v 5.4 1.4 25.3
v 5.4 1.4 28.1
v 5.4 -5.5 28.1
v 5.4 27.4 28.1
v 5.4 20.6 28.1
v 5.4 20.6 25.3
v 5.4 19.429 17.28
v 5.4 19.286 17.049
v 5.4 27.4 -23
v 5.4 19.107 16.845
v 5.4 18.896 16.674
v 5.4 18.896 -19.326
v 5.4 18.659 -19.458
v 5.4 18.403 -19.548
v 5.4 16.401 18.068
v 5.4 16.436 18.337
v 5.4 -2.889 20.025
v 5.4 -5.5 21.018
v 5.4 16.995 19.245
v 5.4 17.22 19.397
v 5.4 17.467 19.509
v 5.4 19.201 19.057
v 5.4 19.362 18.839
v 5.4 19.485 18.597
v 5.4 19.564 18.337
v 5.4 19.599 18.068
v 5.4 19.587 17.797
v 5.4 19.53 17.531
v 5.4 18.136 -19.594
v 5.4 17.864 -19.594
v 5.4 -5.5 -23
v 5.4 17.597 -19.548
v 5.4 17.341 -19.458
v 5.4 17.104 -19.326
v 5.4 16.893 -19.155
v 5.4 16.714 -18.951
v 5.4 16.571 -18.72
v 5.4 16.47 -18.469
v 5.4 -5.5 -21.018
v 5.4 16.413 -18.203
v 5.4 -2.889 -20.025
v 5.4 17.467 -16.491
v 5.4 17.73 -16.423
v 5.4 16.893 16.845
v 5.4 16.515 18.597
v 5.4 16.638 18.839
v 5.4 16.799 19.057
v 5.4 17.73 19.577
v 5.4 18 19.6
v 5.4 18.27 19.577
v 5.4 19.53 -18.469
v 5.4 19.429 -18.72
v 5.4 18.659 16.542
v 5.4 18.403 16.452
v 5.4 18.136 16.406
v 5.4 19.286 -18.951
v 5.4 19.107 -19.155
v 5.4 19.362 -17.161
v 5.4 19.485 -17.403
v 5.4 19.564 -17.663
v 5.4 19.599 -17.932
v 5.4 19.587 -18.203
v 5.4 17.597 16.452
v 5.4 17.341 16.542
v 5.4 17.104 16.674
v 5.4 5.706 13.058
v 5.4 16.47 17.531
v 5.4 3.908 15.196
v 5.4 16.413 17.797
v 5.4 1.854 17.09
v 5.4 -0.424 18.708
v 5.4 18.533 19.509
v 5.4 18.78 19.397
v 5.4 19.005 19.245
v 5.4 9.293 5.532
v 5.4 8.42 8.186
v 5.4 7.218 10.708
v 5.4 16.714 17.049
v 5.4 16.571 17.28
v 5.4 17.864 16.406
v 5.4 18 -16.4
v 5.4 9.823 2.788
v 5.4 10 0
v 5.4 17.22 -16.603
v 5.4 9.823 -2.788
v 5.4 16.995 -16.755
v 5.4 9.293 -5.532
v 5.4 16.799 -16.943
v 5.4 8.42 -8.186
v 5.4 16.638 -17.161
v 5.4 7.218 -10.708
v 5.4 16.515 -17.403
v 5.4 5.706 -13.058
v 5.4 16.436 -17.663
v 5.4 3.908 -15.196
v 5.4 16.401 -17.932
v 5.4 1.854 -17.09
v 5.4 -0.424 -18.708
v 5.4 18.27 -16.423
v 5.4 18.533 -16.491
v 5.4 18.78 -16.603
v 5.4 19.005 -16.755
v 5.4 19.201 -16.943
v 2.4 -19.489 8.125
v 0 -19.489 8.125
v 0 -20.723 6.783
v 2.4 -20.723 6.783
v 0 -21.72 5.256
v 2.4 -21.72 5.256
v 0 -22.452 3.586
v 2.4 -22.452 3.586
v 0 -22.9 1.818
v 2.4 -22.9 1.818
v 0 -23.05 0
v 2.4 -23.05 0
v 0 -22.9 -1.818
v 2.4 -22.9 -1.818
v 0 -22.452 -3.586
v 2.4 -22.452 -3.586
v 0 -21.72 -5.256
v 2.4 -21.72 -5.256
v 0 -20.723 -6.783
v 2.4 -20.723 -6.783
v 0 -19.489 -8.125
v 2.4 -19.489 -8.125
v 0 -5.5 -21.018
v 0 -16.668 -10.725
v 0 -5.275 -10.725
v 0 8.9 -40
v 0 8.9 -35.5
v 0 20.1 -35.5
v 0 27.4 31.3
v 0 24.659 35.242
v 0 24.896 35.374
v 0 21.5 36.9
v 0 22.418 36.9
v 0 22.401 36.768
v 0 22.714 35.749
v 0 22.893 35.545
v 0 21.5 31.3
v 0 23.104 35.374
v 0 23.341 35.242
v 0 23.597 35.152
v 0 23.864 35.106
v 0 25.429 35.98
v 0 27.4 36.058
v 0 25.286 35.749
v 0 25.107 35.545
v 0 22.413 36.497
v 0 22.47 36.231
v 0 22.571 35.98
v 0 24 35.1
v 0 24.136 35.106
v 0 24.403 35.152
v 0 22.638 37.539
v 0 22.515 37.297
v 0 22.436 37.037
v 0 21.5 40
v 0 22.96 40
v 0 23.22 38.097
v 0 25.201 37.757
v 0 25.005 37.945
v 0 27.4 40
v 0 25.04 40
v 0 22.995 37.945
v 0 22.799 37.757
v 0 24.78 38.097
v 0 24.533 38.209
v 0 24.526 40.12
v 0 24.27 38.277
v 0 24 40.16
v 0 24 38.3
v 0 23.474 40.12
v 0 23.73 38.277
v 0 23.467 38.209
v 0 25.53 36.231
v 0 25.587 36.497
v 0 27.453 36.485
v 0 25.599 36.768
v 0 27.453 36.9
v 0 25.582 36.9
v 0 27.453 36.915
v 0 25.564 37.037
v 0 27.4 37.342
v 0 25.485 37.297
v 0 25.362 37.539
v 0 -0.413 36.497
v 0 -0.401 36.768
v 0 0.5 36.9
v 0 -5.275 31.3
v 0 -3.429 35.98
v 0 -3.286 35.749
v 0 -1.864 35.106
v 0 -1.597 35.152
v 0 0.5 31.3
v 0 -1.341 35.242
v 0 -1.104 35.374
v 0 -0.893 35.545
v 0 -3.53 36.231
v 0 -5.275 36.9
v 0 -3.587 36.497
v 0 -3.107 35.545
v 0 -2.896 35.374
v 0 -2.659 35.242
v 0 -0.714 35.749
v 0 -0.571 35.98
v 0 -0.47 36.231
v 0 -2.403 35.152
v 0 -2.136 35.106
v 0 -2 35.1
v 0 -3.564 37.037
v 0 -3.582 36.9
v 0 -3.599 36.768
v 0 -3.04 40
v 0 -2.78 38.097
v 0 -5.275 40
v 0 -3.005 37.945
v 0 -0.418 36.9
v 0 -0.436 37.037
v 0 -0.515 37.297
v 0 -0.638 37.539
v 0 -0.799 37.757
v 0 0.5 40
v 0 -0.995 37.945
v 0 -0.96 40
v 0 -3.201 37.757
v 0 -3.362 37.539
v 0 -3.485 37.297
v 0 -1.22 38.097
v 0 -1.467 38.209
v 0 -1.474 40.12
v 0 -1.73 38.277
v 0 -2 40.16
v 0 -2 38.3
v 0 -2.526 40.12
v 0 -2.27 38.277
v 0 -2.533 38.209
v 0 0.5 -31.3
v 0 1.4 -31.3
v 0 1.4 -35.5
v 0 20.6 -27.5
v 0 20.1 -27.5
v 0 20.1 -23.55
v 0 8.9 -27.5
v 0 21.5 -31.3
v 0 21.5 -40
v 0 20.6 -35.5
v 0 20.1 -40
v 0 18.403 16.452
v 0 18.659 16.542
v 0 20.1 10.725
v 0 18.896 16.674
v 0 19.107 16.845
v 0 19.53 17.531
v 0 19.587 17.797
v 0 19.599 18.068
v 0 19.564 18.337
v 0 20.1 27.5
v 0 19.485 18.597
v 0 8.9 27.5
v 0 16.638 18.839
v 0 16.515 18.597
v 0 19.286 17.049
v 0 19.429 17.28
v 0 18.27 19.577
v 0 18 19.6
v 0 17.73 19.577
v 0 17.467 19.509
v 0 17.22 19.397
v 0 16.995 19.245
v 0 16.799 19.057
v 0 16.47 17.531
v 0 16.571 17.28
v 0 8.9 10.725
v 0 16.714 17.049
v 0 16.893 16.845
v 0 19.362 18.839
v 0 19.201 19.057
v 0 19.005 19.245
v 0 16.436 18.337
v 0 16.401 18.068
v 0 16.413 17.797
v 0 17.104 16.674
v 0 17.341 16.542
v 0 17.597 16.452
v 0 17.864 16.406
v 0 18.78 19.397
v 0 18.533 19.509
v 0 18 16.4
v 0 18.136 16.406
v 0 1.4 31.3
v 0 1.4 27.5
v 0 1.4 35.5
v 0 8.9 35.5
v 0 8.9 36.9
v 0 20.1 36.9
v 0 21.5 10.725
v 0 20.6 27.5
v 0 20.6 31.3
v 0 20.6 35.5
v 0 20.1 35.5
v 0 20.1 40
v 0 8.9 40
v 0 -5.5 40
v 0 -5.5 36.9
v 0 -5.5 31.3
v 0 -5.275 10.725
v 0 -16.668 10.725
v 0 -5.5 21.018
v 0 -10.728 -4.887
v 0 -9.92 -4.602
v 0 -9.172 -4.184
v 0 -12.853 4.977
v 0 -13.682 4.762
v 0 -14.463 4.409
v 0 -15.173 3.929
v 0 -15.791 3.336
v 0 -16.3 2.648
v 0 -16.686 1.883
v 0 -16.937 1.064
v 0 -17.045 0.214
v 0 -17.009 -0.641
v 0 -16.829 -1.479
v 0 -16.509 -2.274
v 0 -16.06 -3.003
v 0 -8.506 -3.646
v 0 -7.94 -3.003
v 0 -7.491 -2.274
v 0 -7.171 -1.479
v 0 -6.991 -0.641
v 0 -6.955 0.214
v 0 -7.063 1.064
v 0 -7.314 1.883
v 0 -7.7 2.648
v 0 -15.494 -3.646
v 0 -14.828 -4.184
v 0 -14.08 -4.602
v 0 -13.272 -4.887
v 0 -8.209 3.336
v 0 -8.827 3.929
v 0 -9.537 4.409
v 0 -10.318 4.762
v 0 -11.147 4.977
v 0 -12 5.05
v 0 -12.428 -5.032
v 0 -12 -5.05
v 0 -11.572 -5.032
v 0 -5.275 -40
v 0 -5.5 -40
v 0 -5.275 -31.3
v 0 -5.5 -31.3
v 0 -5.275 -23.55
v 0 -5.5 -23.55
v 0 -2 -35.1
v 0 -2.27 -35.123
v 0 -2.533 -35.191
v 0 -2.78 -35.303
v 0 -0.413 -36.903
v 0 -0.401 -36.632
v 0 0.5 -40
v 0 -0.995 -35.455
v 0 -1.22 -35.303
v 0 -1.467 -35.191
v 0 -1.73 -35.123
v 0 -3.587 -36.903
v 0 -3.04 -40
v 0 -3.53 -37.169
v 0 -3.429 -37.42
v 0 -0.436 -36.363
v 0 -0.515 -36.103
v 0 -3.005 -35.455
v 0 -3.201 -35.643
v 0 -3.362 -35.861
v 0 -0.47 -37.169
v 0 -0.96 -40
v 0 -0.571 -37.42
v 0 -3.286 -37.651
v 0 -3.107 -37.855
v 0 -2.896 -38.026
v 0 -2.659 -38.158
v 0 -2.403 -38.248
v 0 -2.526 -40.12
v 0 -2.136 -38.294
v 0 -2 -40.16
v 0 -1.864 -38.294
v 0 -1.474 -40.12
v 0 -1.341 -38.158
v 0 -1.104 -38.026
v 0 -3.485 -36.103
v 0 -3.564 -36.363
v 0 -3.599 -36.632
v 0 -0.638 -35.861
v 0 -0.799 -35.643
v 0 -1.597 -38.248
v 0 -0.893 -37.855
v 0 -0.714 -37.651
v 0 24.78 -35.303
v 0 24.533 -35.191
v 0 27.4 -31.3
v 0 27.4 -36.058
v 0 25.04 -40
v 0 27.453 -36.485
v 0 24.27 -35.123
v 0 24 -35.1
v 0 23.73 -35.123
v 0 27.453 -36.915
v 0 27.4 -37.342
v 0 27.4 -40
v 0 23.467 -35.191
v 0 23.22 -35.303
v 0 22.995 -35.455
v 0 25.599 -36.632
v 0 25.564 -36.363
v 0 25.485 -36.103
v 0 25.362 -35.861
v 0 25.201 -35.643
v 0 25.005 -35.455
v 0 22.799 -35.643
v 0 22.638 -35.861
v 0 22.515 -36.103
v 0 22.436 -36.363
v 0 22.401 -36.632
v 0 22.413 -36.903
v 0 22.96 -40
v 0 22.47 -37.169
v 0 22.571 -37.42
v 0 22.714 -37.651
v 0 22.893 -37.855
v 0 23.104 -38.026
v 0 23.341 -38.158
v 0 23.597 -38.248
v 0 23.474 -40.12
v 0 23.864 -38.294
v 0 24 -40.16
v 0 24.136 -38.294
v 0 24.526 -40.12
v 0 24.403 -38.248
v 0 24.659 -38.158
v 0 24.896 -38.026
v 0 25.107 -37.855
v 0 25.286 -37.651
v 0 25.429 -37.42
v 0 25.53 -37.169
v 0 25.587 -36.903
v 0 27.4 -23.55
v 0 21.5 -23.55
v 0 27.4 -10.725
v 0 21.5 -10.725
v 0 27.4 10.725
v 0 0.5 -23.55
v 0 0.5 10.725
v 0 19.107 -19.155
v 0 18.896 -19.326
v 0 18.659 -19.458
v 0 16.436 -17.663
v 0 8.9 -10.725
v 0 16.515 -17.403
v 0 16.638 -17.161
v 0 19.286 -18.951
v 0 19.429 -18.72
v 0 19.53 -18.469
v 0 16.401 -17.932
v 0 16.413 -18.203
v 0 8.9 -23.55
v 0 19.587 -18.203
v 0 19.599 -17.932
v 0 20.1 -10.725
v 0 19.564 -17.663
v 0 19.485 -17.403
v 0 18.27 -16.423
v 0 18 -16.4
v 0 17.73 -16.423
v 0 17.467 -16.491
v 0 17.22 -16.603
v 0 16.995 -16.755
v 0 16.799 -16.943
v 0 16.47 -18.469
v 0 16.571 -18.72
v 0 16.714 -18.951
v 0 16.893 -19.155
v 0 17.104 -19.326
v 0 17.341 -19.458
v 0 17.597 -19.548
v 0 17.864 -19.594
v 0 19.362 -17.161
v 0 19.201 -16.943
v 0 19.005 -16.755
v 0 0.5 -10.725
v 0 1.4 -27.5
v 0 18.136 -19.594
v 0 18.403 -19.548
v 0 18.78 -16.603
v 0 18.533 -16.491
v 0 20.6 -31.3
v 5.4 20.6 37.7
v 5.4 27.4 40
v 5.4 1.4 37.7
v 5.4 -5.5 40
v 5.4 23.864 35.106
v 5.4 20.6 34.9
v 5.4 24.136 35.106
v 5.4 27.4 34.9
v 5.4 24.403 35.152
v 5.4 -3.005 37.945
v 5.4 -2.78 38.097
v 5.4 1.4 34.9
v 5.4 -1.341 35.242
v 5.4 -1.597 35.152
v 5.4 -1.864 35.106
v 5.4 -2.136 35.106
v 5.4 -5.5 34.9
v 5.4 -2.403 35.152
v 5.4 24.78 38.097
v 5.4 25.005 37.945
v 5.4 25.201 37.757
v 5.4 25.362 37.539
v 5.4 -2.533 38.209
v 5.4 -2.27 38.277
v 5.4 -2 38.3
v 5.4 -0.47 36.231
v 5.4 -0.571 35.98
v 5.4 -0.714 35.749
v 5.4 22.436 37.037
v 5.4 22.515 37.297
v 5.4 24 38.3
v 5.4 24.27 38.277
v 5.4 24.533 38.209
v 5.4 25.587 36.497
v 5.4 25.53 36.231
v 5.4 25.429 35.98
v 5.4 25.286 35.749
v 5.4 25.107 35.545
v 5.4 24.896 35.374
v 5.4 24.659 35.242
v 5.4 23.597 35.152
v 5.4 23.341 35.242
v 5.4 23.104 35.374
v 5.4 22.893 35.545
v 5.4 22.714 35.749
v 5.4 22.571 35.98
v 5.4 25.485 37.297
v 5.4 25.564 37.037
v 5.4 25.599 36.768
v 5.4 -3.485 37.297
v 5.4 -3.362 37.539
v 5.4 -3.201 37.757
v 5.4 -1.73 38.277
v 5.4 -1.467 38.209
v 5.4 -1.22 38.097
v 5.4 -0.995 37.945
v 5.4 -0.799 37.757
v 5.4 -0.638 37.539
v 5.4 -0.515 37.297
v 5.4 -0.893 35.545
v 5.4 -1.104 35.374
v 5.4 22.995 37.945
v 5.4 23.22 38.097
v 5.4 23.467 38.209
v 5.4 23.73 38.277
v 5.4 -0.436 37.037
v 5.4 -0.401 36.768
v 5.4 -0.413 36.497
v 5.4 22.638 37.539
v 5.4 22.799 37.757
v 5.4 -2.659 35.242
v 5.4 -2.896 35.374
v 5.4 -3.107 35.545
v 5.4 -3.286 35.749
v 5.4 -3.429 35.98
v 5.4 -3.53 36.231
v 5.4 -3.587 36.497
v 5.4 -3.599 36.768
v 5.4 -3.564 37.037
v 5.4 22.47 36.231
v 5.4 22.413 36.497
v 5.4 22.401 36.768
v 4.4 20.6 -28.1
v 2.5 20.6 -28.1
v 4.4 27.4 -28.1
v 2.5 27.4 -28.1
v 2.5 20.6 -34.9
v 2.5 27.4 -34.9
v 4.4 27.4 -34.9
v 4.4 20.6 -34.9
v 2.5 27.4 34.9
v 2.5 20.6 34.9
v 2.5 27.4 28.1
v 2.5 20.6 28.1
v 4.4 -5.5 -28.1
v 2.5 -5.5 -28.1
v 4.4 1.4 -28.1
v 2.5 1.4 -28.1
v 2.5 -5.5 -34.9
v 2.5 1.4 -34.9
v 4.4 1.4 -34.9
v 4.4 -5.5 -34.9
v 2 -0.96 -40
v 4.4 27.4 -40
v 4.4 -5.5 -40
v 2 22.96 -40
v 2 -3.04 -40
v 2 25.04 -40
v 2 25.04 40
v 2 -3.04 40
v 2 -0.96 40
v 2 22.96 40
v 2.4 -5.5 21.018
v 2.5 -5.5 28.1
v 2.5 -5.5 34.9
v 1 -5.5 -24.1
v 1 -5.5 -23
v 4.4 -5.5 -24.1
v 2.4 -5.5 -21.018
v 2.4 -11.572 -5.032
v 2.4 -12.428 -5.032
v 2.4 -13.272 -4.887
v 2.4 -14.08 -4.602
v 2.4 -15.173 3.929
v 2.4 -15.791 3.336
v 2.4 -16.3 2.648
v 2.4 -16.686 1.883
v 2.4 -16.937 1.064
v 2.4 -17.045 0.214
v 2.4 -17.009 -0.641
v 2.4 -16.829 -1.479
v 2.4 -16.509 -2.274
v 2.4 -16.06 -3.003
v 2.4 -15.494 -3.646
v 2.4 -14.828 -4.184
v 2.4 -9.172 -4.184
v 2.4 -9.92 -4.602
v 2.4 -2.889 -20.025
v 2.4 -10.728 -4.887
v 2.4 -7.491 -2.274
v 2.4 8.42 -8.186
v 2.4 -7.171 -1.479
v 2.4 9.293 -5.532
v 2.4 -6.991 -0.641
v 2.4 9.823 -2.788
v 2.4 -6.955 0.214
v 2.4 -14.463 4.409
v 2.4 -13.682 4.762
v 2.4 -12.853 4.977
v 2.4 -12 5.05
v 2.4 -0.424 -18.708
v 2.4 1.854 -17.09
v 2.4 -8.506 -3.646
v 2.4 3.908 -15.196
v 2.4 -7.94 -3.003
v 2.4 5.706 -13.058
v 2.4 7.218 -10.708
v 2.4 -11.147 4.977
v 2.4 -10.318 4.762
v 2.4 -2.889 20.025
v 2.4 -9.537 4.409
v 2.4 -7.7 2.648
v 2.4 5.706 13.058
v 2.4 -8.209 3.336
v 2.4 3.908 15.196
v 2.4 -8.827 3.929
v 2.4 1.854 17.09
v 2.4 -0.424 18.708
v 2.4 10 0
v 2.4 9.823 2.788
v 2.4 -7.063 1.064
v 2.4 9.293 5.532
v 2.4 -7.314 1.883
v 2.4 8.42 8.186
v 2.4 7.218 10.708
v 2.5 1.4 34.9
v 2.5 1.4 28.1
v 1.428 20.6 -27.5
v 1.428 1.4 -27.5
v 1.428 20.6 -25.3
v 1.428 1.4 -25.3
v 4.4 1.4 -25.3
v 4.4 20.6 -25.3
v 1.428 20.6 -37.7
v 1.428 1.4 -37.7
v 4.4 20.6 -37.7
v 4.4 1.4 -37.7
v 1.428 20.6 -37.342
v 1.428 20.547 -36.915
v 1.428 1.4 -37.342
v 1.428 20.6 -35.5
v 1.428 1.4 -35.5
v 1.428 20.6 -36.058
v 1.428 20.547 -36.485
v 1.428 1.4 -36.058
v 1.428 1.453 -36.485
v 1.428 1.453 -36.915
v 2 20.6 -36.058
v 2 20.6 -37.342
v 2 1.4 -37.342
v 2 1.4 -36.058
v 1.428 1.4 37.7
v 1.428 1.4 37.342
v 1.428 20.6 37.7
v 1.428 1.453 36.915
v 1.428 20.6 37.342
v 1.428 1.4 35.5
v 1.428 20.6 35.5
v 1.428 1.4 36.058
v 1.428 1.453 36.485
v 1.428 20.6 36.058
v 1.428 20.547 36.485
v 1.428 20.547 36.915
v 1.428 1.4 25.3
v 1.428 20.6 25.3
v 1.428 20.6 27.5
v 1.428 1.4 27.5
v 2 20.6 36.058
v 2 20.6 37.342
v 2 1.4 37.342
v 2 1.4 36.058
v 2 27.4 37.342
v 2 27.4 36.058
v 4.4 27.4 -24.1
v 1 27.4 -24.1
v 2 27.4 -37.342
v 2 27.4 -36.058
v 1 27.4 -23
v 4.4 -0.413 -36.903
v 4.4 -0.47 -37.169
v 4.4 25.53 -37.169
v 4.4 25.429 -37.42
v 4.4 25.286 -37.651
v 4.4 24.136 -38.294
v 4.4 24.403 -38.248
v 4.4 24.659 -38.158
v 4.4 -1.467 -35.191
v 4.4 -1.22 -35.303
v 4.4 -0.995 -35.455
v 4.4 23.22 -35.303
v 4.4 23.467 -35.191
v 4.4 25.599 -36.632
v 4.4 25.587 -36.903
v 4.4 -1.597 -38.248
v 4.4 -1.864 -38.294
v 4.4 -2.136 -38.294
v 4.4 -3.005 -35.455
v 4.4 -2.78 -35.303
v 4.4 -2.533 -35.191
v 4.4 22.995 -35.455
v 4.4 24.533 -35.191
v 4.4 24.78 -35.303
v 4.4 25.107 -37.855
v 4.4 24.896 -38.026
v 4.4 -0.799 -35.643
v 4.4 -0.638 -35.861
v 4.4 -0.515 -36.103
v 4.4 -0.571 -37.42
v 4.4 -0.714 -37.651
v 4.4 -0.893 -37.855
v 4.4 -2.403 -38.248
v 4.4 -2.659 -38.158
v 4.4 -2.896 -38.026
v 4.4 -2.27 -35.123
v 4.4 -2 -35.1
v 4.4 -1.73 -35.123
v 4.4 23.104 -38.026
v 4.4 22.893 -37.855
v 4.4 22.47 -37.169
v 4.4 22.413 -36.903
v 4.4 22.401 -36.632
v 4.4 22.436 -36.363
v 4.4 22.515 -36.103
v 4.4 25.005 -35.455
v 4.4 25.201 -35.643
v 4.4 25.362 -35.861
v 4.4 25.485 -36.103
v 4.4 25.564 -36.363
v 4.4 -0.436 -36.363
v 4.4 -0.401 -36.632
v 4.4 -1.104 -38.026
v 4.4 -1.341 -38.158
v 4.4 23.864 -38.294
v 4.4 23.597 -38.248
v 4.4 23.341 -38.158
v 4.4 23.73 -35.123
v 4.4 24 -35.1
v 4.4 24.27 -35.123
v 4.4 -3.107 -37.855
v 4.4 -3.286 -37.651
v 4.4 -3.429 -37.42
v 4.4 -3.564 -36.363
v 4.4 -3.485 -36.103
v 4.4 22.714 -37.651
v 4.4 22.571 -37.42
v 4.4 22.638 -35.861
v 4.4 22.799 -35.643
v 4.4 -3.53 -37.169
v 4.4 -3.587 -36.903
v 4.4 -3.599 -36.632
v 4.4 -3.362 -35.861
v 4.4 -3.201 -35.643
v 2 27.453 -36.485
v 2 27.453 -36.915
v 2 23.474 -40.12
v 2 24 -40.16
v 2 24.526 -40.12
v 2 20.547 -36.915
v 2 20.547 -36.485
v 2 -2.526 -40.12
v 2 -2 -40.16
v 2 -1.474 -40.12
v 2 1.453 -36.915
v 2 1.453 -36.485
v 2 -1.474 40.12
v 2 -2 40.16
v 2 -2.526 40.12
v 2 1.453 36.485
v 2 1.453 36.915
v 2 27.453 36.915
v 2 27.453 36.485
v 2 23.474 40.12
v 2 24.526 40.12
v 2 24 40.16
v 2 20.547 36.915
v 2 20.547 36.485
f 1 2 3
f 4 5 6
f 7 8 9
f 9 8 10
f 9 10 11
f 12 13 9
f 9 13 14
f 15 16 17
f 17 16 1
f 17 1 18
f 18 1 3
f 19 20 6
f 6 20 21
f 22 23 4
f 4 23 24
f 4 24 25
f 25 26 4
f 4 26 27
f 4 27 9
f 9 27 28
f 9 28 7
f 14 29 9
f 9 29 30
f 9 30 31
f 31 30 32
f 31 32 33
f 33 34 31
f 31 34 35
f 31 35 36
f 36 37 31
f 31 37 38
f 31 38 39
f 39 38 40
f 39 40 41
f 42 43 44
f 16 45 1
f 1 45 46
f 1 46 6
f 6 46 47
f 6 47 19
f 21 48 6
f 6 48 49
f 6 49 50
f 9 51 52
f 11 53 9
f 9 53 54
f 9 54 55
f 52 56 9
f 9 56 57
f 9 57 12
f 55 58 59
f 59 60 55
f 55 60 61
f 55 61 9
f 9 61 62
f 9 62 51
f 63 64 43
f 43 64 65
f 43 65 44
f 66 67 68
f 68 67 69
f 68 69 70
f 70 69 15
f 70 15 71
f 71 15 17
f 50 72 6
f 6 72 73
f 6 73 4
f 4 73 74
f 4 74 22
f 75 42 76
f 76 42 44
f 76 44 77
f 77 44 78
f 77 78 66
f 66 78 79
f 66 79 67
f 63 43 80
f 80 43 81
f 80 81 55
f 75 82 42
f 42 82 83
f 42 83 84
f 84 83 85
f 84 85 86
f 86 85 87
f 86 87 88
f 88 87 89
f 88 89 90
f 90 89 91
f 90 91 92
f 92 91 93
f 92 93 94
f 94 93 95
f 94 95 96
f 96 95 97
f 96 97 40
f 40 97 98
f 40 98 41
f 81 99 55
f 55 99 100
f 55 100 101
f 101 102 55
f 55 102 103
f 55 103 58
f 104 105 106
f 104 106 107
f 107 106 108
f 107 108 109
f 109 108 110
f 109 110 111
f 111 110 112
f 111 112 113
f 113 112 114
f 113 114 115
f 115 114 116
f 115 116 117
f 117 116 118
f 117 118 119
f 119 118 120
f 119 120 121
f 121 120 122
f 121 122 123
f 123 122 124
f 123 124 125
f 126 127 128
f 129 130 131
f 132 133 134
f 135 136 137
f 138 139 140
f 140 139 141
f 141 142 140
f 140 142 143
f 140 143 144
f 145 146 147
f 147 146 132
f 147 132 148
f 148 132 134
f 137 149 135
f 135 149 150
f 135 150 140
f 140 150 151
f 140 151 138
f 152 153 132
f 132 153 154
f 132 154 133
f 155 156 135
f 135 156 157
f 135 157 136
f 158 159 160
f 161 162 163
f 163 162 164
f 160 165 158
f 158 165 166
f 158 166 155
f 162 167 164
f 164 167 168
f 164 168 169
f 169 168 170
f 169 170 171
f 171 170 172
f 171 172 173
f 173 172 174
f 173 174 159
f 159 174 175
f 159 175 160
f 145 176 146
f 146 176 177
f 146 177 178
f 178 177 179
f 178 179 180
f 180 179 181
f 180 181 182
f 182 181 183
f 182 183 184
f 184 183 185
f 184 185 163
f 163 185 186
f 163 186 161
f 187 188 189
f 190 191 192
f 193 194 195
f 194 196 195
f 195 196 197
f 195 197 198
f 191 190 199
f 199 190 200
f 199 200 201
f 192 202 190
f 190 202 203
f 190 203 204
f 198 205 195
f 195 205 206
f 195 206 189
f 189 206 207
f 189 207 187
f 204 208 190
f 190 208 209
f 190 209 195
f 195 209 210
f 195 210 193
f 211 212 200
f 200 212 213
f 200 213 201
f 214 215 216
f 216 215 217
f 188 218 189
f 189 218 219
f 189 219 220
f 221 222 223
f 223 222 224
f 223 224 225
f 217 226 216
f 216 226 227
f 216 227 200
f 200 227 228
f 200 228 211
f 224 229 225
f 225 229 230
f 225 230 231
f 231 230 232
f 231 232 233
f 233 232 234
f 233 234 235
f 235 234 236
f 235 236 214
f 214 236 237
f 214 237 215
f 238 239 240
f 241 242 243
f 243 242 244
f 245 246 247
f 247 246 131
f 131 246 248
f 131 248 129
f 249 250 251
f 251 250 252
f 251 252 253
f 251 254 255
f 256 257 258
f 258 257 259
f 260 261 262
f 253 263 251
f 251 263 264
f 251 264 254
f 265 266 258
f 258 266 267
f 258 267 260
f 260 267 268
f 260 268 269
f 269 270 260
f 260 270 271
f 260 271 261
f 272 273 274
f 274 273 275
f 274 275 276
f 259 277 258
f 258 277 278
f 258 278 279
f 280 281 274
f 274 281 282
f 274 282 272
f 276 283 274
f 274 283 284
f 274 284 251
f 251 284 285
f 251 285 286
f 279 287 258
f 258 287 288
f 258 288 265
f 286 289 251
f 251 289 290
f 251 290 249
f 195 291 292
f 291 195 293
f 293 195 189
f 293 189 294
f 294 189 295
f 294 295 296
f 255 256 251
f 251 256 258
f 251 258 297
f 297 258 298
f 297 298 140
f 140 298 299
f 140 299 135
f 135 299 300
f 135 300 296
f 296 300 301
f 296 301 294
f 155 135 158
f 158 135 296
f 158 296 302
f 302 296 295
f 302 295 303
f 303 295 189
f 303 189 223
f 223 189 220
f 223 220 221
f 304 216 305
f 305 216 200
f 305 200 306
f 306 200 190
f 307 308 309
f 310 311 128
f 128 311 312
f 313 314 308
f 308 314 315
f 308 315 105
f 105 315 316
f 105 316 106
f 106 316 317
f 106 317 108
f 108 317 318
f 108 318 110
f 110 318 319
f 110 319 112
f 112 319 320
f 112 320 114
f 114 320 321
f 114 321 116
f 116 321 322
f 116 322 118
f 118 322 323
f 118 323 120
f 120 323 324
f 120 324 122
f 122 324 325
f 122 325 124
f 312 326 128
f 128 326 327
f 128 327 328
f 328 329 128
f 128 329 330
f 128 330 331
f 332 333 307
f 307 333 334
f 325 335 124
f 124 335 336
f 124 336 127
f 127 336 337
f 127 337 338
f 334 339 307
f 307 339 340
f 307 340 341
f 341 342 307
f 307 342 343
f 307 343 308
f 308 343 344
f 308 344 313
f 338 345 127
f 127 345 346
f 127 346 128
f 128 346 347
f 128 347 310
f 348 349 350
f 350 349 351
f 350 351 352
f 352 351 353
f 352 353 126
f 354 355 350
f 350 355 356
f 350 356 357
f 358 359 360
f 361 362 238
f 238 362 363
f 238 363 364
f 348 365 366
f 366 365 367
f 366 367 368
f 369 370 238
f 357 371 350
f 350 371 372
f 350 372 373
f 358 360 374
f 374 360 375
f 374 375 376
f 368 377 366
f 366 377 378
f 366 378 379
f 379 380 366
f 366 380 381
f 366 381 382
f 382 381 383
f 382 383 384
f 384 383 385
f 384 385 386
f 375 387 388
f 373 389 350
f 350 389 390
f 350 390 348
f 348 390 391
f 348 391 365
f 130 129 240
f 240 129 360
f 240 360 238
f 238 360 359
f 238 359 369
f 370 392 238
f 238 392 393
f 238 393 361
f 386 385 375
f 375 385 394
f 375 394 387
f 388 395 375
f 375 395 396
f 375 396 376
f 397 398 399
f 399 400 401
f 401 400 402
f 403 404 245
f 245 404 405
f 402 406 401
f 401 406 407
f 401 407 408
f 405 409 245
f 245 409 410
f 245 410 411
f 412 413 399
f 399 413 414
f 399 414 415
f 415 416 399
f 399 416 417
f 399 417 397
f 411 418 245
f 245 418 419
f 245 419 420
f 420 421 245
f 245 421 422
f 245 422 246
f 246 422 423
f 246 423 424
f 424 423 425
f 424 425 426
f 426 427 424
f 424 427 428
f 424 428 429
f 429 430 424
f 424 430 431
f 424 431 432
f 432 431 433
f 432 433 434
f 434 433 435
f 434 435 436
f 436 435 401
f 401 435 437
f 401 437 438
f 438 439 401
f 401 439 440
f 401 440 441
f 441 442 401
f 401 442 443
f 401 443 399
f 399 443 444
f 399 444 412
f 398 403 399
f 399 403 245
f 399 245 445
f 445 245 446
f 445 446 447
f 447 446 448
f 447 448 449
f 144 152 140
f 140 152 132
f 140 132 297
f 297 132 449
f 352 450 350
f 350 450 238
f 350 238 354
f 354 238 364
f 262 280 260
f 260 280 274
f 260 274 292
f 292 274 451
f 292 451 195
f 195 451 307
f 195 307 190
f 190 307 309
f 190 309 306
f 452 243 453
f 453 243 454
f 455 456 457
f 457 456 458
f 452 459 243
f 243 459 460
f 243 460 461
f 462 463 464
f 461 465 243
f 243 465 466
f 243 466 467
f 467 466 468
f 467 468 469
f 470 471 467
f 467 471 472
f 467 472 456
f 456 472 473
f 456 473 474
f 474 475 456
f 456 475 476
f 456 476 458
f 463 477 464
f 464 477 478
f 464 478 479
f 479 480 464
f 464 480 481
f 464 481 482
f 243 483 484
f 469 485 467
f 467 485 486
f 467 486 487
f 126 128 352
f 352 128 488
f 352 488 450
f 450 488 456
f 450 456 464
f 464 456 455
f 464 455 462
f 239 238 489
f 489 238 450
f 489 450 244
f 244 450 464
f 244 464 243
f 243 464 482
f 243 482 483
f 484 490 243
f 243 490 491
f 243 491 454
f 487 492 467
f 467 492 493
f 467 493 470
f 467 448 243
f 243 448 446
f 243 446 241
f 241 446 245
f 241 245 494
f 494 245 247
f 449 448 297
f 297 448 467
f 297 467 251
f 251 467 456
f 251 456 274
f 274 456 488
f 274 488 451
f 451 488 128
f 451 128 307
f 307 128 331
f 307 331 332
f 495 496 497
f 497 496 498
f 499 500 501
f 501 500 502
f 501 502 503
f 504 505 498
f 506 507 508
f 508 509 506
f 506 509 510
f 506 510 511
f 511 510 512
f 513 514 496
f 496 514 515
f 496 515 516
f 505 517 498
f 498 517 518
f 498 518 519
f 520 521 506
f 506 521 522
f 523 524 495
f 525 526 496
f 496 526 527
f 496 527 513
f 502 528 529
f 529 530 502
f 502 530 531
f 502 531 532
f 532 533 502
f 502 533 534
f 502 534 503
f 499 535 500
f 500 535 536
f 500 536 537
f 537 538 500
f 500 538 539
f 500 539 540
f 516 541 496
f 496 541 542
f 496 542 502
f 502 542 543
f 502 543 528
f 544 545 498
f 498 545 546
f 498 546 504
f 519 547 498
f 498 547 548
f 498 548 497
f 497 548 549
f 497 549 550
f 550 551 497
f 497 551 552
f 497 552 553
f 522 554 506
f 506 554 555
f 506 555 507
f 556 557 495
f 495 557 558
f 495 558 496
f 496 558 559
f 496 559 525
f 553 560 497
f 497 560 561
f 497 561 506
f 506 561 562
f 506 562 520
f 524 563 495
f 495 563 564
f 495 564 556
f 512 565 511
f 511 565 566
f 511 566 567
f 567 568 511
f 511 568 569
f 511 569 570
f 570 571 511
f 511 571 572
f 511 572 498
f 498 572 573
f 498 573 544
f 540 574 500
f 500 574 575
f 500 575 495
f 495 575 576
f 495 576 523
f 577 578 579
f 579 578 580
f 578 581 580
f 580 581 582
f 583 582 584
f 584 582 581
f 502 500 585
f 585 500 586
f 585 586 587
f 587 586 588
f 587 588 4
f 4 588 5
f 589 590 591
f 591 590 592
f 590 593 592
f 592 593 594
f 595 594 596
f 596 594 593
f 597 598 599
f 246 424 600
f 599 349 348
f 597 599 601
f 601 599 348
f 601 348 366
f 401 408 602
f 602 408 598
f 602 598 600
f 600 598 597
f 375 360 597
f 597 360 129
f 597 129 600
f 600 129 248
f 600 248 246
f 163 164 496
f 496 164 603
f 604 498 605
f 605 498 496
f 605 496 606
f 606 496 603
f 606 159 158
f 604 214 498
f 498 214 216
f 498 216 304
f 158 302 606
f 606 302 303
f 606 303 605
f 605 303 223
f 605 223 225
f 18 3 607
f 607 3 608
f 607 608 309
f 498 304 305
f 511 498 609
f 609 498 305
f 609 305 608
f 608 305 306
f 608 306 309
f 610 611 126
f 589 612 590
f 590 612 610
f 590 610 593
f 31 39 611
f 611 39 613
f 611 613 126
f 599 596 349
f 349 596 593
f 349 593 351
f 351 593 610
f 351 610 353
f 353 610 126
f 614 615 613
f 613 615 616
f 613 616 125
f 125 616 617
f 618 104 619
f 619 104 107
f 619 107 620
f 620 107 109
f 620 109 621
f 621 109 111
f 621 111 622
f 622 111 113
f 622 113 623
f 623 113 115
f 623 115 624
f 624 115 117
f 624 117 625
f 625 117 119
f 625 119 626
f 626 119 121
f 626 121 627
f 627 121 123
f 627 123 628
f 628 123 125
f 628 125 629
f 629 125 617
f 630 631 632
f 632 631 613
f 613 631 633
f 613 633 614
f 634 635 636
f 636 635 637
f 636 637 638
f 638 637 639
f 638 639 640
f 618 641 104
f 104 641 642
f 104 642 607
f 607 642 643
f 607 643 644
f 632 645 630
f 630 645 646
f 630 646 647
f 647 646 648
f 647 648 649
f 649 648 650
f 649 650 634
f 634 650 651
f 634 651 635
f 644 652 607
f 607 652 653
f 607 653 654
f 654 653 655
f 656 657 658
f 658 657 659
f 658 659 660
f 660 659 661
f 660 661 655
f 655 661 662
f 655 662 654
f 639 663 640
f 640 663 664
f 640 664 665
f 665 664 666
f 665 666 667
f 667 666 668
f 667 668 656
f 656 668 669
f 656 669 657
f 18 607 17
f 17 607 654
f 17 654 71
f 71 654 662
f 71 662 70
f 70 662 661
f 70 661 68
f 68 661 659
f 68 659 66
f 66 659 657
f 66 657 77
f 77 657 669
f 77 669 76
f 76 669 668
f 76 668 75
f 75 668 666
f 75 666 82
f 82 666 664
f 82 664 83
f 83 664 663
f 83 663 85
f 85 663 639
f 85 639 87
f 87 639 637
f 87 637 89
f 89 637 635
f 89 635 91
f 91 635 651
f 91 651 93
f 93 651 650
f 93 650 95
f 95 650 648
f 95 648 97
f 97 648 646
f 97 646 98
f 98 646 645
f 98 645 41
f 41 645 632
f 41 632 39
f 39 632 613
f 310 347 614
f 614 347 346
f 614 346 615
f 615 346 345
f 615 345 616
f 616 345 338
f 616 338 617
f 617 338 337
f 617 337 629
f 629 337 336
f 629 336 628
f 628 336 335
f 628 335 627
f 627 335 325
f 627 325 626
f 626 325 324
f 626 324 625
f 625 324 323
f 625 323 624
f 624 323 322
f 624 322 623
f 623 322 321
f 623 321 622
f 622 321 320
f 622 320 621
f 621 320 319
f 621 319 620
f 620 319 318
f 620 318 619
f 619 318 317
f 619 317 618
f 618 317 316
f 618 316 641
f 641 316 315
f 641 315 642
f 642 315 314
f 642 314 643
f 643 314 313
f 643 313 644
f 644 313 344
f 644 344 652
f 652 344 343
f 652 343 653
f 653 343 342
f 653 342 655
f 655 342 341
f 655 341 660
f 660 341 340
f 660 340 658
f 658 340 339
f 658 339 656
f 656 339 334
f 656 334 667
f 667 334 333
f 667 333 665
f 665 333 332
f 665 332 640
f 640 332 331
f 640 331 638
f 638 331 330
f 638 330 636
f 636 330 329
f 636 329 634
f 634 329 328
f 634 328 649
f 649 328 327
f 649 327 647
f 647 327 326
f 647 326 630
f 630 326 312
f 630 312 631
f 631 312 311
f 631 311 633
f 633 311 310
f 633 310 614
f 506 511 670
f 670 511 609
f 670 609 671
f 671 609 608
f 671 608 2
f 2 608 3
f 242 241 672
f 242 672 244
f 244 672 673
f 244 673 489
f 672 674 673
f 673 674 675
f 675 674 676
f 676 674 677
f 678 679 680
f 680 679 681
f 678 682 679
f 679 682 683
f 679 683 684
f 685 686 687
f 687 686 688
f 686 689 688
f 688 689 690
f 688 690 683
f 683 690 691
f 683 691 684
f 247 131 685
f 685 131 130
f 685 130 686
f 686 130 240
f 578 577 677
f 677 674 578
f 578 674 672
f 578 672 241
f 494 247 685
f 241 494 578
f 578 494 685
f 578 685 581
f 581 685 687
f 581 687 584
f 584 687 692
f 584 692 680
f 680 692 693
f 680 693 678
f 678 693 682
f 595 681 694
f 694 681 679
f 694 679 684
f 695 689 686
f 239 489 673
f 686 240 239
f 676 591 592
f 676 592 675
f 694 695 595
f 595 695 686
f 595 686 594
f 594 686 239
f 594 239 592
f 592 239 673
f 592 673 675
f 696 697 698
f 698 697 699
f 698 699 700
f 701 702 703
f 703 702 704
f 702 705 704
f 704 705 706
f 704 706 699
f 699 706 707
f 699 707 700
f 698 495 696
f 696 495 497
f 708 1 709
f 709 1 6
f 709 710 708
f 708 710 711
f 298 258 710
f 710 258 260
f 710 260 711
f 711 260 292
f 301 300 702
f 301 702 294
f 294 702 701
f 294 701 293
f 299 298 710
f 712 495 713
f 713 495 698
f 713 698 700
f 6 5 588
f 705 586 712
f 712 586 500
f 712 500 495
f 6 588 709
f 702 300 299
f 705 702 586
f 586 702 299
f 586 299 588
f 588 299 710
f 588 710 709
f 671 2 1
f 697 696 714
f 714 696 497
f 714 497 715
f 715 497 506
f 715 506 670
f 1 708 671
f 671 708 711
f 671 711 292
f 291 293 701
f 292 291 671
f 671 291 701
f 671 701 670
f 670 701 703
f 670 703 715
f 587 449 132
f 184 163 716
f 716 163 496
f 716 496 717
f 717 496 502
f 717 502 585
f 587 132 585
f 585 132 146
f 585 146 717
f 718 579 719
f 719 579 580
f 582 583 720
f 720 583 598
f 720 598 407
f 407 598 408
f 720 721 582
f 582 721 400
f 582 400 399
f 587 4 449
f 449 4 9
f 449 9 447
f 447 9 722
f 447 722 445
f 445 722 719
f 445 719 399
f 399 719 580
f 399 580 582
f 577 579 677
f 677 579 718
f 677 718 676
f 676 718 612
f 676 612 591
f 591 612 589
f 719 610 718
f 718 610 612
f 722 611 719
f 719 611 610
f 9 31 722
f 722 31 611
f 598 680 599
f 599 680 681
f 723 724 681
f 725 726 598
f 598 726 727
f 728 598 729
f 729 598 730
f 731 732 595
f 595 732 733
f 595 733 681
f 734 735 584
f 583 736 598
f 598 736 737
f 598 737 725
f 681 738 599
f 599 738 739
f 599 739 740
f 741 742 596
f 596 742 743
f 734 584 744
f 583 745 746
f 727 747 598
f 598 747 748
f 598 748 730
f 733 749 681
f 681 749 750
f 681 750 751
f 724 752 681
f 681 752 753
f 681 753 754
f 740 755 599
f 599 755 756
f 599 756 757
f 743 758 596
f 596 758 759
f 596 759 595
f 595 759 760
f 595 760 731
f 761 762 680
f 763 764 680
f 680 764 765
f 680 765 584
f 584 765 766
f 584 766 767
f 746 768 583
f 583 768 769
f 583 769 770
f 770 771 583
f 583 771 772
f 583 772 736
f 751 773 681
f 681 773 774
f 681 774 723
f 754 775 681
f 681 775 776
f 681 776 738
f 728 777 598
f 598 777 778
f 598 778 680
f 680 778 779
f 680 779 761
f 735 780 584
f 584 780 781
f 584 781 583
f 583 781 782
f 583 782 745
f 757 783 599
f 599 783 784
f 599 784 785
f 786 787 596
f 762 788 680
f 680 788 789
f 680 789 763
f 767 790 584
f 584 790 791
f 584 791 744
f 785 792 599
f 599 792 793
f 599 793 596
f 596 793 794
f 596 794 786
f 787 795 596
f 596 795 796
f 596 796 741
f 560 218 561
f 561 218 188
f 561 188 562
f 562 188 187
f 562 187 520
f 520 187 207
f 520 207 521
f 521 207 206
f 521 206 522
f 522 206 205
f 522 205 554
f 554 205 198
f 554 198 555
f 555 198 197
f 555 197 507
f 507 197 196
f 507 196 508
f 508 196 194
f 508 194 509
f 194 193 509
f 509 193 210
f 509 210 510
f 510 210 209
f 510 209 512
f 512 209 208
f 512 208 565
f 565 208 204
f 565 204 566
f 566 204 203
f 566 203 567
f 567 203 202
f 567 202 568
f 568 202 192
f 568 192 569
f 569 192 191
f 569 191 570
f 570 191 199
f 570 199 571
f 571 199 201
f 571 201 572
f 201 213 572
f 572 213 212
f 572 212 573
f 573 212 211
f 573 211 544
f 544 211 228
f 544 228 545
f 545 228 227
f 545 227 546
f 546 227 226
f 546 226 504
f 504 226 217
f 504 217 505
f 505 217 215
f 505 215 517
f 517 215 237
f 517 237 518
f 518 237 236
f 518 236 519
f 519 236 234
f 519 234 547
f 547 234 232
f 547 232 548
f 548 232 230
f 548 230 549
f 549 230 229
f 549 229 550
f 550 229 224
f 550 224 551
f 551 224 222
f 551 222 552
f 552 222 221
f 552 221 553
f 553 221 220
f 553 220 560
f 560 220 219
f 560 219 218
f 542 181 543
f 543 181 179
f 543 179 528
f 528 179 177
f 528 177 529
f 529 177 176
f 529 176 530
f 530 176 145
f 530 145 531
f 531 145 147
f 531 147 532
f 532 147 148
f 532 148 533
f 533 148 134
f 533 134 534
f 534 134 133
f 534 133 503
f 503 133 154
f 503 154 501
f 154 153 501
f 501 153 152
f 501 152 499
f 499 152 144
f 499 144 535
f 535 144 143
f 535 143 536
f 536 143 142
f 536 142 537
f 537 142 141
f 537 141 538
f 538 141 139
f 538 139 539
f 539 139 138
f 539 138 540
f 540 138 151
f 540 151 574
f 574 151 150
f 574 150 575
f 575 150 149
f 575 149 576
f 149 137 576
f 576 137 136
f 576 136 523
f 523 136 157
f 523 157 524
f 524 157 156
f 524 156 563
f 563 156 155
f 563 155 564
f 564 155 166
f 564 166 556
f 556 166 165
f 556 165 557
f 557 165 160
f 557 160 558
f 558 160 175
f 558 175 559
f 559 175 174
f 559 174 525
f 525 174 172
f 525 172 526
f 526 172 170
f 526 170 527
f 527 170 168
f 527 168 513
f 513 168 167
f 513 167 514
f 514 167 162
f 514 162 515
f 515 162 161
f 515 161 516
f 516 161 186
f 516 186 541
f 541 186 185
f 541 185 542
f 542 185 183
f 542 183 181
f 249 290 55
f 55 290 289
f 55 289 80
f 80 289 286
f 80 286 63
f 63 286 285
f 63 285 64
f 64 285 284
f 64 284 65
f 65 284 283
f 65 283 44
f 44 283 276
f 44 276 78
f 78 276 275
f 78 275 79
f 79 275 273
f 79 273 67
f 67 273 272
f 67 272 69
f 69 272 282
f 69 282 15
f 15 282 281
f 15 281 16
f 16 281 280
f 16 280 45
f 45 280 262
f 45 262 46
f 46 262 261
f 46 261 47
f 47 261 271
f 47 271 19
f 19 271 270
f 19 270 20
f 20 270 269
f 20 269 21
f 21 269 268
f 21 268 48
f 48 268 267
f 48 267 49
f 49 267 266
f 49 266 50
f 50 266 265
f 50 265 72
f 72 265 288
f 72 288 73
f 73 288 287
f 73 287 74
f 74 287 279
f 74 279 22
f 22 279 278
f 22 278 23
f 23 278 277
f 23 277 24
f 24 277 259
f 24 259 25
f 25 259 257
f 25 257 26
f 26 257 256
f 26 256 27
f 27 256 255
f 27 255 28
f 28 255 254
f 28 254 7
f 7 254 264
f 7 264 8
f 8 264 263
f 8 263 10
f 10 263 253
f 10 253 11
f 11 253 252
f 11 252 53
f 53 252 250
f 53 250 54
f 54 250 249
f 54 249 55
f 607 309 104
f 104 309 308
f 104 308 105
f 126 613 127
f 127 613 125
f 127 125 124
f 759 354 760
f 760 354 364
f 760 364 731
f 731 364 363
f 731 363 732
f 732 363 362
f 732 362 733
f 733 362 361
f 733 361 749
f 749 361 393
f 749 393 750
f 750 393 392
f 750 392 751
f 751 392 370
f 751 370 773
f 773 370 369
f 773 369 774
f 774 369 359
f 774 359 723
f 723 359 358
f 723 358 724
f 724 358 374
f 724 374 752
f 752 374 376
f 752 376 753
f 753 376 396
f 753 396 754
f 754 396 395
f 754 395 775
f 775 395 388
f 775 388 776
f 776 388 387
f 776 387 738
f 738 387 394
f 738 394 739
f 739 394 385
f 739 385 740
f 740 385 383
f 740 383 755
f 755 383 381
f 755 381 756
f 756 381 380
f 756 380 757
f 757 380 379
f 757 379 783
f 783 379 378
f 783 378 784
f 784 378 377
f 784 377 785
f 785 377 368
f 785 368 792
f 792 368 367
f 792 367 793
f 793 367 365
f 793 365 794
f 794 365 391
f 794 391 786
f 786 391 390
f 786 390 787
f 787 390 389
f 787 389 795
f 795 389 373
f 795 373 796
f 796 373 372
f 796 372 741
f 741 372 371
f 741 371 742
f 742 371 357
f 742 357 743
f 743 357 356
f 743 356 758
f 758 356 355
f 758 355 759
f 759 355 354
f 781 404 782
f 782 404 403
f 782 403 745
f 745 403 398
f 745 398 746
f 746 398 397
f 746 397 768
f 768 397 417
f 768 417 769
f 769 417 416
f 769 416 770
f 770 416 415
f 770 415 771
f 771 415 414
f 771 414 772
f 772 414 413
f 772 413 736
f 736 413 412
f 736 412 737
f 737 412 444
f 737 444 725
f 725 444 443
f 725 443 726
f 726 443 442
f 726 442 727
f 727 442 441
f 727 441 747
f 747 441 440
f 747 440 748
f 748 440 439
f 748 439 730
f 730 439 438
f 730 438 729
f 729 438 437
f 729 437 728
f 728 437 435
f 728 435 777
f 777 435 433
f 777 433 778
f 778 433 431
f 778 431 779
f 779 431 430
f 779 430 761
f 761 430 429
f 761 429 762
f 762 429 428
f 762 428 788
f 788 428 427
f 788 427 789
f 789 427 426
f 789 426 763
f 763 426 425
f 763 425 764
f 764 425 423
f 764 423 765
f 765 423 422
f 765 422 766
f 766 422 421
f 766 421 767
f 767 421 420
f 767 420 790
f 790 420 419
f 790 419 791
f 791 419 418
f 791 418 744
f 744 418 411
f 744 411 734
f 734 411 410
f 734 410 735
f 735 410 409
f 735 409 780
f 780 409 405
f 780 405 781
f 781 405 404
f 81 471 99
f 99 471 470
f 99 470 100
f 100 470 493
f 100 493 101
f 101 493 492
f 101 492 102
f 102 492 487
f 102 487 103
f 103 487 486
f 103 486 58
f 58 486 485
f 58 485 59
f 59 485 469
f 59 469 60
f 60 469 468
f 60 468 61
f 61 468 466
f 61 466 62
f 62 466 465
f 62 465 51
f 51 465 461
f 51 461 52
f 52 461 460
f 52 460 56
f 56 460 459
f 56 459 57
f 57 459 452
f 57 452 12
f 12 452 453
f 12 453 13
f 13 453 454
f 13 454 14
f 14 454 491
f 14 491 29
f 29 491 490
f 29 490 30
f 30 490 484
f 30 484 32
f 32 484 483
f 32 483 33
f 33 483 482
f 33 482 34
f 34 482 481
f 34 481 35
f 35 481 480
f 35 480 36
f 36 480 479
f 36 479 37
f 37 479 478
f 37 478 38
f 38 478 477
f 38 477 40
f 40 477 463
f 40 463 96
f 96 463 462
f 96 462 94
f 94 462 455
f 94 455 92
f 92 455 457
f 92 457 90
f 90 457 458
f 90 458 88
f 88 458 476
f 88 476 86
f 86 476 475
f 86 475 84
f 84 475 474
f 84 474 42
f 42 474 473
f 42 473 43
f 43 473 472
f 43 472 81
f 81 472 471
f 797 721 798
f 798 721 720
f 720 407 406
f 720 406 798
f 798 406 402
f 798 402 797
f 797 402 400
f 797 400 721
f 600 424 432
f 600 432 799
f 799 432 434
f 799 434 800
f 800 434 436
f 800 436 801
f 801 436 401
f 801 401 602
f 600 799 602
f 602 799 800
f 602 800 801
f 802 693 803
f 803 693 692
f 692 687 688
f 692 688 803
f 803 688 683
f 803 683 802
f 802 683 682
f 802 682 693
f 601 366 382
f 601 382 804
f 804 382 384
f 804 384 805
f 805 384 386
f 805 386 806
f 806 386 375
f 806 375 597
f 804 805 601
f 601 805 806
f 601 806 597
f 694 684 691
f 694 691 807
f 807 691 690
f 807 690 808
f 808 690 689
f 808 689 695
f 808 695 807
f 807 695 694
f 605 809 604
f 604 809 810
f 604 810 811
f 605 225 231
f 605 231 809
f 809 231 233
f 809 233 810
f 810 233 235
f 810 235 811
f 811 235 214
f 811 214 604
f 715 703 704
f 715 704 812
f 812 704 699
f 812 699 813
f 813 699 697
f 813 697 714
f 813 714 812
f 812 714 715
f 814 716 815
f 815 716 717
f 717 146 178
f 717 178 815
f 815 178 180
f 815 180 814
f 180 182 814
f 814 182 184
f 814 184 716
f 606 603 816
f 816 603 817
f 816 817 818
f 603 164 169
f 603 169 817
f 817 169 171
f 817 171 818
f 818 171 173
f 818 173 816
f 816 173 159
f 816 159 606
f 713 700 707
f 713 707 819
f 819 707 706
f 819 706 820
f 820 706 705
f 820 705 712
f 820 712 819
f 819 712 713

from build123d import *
from build123d.topology import SkipClean

# Parameters (mm, degrees)
ESQUISSE2_W                                       = 80
ESQUISSE2_H                                       = 85
PLAQUE_DEPTH                                      = 5.4
ESQUISSE15_R                                      = 22
D_GAGEMENT_ROUE_DEPTH                             = 81.678373806
D_COUPE_INF_RIEURE_DEPTH                          = 81.803217758
ESQUISSE14_R                                      = 11.05
ESQUISSE14_R_2                                    = 5.05
RENFORT_ROULEMENT_DEPTH                           = 2.4
D_COUPE_SUP_RIEURE_DEPTH                          = 81.803217758
D_GAGEMENT_AXE_6_DEPTH                            = 75.400336021
D_GAGEMENT_AXE_6_DEPTH_BACK                       = 75.400336021
ESQUISSE26_W                                      = 6.8
ESQUISSE26_H                                      = 6.8
D_GAGEMENT_START                                  = 1.4
D_GAGEMENT_DOUILLE_DEPTH                          = 19.2
R_P_TITION_LIN_AIRE1_COUNT                        = 2
R_P_TITION_LIN_AIRE1_PITCH                        = 26
MORS_D_FORMABLE_DOUILLE_DEPTH                     = 75.400336021
MORS_D_FORMABLE_DOUILLE_DEPTH_BACK                = 75.400336021
FRAISAGE_POUR_VIS_T_TE_FRAIS_E_BOMB_E_D           = 3.2
FRAISAGE_POUR_VIS_T_TE_FRAIS_E_BOMB_E_CSINK_D     = 6.92
FRAISAGE_POUR_VIS_T_TE_FRAIS_E_BOMB_E_CSINK_ANGLE = 90
ESQUISSE31_W                                      = 80
ESQUISSE31_H                                      = 35.1
ENL_V_MAT_EXTRU_1_DEPTH                           = 5.4
BOSS_EXTRU_1_DEPTH                                = 2.4
BOSS_EXTRU_3_START                                = -2
ESQUISSE34_R                                      = 3.46
ESQUISSE34_R_2                                    = 1.6
BOSS_EXTRU_3_DEPTH                                = 2


with BuildPart() as part:
    # Esquisse2 → plaque (new body)
    with BuildSketch(Plane(origin=(0, 0, 0), x_dir=(0, 0, -1), z_dir=(1, 0, 0))):
        with Locations((0, 27.5)):
            Rectangle(ESQUISSE2_W, ESQUISSE2_H)
    extrude(amount=PLAQUE_DEPTH)

    # Esquisse15 → dégagement roue (cut, through all)
    with BuildSketch(Plane.ZY.offset(-2.4)):
        with Locations((0, -12)):
            Circle(ESQUISSE15_R)
    extrude(amount=-D_GAGEMENT_ROUE_DEPTH, mode=Mode.SUBTRACT)

    # Esquisse18 → découpe_inférieure (cut, through all)
    with BuildSketch(Plane(origin=(0, 0, 0), x_dir=(0, 0, -1), z_dir=(1, 0, 0))):
        Polygon((-7.446869682, -5.5), (-40, -5.5), (-40, -15), (40, -15), (40, -5.5), (7.446869682, -5.5), align=None)
    extrude(amount=D_COUPE_INF_RIEURE_DEPTH, mode=Mode.SUBTRACT)

    # Esquisse14 → renfort_roulement (add)
    with BuildSketch(Plane(origin=(0, 0, 0), x_dir=(0, 0, -1), z_dir=(1, 0, 0))):
        with Locations((0, -12)):
            Circle(ESQUISSE14_R)
        with Locations((0, -12)):
            Circle(ESQUISSE14_R_2, mode=Mode.SUBTRACT)
    extrude(amount=RENFORT_ROULEMENT_DEPTH)

    # Esquisse20 → découpe_supérieure (cut, through all)
    with BuildSketch(Plane(origin=(0, 0, 0), x_dir=(0, 0, -1), z_dir=(1, 0, 0))):
        with BuildLine():
            Line((-40, 70), (40, 70))
            Line((40, 70), (40, 62.5))
            Line((40, 62.5), (26, 62.5))
            ThreePointArc((26, 62.5), (22.956192855, 61.466766701), (21.170370869, 58.794095226))
            Line((21.170370869, 58.794095226), (15.559208556, 37.852952387))
            ThreePointArc((15.559208556, 37.852952387), (14.666297563, 36.516616649), (13.144393991, 36))
            Line((13.144393991, 36), (-13.144393991, 36))
            ThreePointArc((-13.144393991, 36), (-14.666297563, 36.516616649), (-15.559208556, 37.852952387))
            Line((-15.559208556, 37.852952387), (-21.170370869, 58.794095226))
            ThreePointArc((-21.170370869, 58.794095226), (-22.956192855, 61.466766701), (-26, 62.5))
            Line((-26, 62.5), (-40, 62.5))
            Line((-40, 62.5), (-40, 70))
        make_face()
    extrude(amount=D_COUPE_SUP_RIEURE_DEPTH, mode=Mode.SUBTRACT)

    # Esquisse26 → dégagement axe 6 (cut, two sides: drawn at the far end of the back side and taken through both)
    with BuildSketch(Plane(origin=(0, 0, 0), x_dir=(1, 0, 0), z_dir=(0, 1, 0)).offset(-D_GAGEMENT_AXE_6_DEPTH_BACK)):
        with Locations((5.9, 31.5)):
            Rectangle(ESQUISSE26_W, ESQUISSE26_H)
        with Locations((5.9, -31.5)):
            Rectangle(ESQUISSE26_W, ESQUISSE26_H)
    extrude(amount=D_GAGEMENT_AXE_6_DEPTH + D_GAGEMENT_AXE_6_DEPTH_BACK, mode=Mode.SUBTRACT)

    # Esquisse28 → dégagement douille (cut)
    with BuildSketch(Plane(origin=(0, 0, 0), x_dir=(1, 0, 0), z_dir=(0, 1, 0)).offset(D_GAGEMENT_START)):
        Polygon((0, 35.5), (1.427864045, 35.5), (1.427864045, 37.7), (10.372135955, 37.7), (10.372135955, 25.3), (1.427864045, 25.3), (1.427864045, 27.5), (0, 27.5), align=None)
        Polygon((10.372135955, -25.3), (1.427864045, -25.3), (1.427864045, -27.5), (0, -27.5), (0, -35.5), (1.427864045, -35.5), (1.427864045, -37.7), (10.372135955, -37.7), align=None)
    d_gagement_douille = extrude(amount=D_GAGEMENT_DOUILLE_DEPTH, mode=Mode.SUBTRACT)

    # Répétition linéaire1: dégagement douille ×2
    with Locations(*[(0, i * R_P_TITION_LIN_AIRE1_PITCH, 0) for i in range(1, R_P_TITION_LIN_AIRE1_COUNT)]):
        add(d_gagement_douille, mode=Mode.SUBTRACT)

    # Esquisse19 → Mors_déformable_douille (cut, two sides: drawn at the far end of the back side and taken through both)
    with BuildSketch(Plane(origin=(0, 0, 0), x_dir=(1, 0, 0), z_dir=(0, 1, 0)).offset(-MORS_D_FORMABLE_DOUILLE_DEPTH_BACK)):
        Polygon((5.4, 40), (4.4, 40), (4.4, 24.1), (1, 24.1), (1, 23), (5.4, 23), align=None)
    extrude(amount=MORS_D_FORMABLE_DOUILLE_DEPTH + MORS_D_FORMABLE_DOUILLE_DEPTH_BACK, mode=Mode.SUBTRACT)

    # Fraisage pour vis à tête fraisée bombée fendue M31 (through all)
    with Locations(Plane.ZY):
        with Locations((18, 18), (36.7, 24), (36.7, -2), (21, 34)):
            fraisage_pour_vis_t_te_frais_e_bomb_e = CounterSinkHole(FRAISAGE_POUR_VIS_T_TE_FRAIS_E_BOMB_E_D / 2, FRAISAGE_POUR_VIS_T_TE_FRAIS_E_BOMB_E_CSINK_D / 2, counter_sink_angle=FRAISAGE_POUR_VIS_T_TE_FRAIS_E_BOMB_E_CSINK_ANGLE)

    # Esquisse31 → Enlèv. mat.-Extru.1 (cut)
    with BuildSketch(Plane(origin=(5.4, 0, 0), x_dir=(0, 0, -1), z_dir=(1, 0, 0))):
        with Locations((0, 44.95)):
            Rectangle(ESQUISSE31_W, ESQUISSE31_H)
    extrude(amount=-ENL_V_MAT_EXTRU_1_DEPTH, mode=Mode.SUBTRACT)

    # Esquisse33 → Boss.-Extru.1 (add)
    with BuildSketch(Plane(origin=(2.4, 0, 0), x_dir=(0, 0, -1), z_dir=(1, 0, 0))):
        Polygon((-8.125418007, -19.488663579), (-21.017849557, -5.5), (-8.936022605, -5.5), align=None)
        Polygon((8.125418007, -19.488663579), (21.017849557, -5.5), (8.936022605, -5.5), align=None)
    extrude(amount=-BOSS_EXTRU_1_DEPTH)

    # Symétrie4: Fraisage pour vis à tête fraisée bombée fendue M31 across plane
    add(fraisage_pour_vis_t_te_frais_e_bomb_e.mirror(Plane.XY), mode=Mode.SUBTRACT)

    # Esquisse34 → Boss.-Extru.3 (add)
    # profile 1 of 6: a face of its own
    with SkipClean():  # the faces are left unmerged after this step: merging them gives an invalid solid
        with BuildSketch(Plane.ZY.offset(BOSS_EXTRU_3_START)):
            with Locations((-36.7, 24)):
                Circle(ESQUISSE34_R)
            with Locations((-36.7, 24)):
                Circle(ESQUISSE34_R_2, mode=Mode.SUBTRACT)
        # profile 2 of 6: a face of its own
        with BuildSketch(Plane.ZY.offset(BOSS_EXTRU_3_START)):
            with Locations((-36.7, -2)):
                Circle(ESQUISSE34_R)
            with Locations((-36.7, -2)):
                Circle(ESQUISSE34_R_2, mode=Mode.SUBTRACT)
        # profile 3 of 6: a face of its own
        with BuildSketch(Plane.ZY.offset(BOSS_EXTRU_3_START)):
            with Locations((-18, 18)):
                Circle(ESQUISSE34_R)
            with Locations((-18, 18)):
                Circle(ESQUISSE34_R_2, mode=Mode.SUBTRACT)
        # profile 4 of 6: a face of its own
        with BuildSketch(Plane.ZY.offset(BOSS_EXTRU_3_START)):
            with Locations((18, 18)):
                Circle(ESQUISSE34_R)
            with Locations((18, 18)):
                Circle(ESQUISSE34_R_2, mode=Mode.SUBTRACT)
        # profile 5 of 6: a face of its own
        with BuildSketch(Plane.ZY.offset(BOSS_EXTRU_3_START)):
            with Locations((36.7, -2)):
                Circle(ESQUISSE34_R)
            with Locations((36.7, -2)):
                Circle(ESQUISSE34_R_2, mode=Mode.SUBTRACT)
        # profile 6 of 6: a face of its own
        with BuildSketch(Plane.ZY.offset(BOSS_EXTRU_3_START)):
            with Locations((36.7, 24)):
                Circle(ESQUISSE34_R)
            with Locations((36.7, 24)):
                Circle(ESQUISSE34_R_2, mode=Mode.SUBTRACT)
        extrude(amount=BOSS_EXTRU_3_DEPTH)


solid = part.part
